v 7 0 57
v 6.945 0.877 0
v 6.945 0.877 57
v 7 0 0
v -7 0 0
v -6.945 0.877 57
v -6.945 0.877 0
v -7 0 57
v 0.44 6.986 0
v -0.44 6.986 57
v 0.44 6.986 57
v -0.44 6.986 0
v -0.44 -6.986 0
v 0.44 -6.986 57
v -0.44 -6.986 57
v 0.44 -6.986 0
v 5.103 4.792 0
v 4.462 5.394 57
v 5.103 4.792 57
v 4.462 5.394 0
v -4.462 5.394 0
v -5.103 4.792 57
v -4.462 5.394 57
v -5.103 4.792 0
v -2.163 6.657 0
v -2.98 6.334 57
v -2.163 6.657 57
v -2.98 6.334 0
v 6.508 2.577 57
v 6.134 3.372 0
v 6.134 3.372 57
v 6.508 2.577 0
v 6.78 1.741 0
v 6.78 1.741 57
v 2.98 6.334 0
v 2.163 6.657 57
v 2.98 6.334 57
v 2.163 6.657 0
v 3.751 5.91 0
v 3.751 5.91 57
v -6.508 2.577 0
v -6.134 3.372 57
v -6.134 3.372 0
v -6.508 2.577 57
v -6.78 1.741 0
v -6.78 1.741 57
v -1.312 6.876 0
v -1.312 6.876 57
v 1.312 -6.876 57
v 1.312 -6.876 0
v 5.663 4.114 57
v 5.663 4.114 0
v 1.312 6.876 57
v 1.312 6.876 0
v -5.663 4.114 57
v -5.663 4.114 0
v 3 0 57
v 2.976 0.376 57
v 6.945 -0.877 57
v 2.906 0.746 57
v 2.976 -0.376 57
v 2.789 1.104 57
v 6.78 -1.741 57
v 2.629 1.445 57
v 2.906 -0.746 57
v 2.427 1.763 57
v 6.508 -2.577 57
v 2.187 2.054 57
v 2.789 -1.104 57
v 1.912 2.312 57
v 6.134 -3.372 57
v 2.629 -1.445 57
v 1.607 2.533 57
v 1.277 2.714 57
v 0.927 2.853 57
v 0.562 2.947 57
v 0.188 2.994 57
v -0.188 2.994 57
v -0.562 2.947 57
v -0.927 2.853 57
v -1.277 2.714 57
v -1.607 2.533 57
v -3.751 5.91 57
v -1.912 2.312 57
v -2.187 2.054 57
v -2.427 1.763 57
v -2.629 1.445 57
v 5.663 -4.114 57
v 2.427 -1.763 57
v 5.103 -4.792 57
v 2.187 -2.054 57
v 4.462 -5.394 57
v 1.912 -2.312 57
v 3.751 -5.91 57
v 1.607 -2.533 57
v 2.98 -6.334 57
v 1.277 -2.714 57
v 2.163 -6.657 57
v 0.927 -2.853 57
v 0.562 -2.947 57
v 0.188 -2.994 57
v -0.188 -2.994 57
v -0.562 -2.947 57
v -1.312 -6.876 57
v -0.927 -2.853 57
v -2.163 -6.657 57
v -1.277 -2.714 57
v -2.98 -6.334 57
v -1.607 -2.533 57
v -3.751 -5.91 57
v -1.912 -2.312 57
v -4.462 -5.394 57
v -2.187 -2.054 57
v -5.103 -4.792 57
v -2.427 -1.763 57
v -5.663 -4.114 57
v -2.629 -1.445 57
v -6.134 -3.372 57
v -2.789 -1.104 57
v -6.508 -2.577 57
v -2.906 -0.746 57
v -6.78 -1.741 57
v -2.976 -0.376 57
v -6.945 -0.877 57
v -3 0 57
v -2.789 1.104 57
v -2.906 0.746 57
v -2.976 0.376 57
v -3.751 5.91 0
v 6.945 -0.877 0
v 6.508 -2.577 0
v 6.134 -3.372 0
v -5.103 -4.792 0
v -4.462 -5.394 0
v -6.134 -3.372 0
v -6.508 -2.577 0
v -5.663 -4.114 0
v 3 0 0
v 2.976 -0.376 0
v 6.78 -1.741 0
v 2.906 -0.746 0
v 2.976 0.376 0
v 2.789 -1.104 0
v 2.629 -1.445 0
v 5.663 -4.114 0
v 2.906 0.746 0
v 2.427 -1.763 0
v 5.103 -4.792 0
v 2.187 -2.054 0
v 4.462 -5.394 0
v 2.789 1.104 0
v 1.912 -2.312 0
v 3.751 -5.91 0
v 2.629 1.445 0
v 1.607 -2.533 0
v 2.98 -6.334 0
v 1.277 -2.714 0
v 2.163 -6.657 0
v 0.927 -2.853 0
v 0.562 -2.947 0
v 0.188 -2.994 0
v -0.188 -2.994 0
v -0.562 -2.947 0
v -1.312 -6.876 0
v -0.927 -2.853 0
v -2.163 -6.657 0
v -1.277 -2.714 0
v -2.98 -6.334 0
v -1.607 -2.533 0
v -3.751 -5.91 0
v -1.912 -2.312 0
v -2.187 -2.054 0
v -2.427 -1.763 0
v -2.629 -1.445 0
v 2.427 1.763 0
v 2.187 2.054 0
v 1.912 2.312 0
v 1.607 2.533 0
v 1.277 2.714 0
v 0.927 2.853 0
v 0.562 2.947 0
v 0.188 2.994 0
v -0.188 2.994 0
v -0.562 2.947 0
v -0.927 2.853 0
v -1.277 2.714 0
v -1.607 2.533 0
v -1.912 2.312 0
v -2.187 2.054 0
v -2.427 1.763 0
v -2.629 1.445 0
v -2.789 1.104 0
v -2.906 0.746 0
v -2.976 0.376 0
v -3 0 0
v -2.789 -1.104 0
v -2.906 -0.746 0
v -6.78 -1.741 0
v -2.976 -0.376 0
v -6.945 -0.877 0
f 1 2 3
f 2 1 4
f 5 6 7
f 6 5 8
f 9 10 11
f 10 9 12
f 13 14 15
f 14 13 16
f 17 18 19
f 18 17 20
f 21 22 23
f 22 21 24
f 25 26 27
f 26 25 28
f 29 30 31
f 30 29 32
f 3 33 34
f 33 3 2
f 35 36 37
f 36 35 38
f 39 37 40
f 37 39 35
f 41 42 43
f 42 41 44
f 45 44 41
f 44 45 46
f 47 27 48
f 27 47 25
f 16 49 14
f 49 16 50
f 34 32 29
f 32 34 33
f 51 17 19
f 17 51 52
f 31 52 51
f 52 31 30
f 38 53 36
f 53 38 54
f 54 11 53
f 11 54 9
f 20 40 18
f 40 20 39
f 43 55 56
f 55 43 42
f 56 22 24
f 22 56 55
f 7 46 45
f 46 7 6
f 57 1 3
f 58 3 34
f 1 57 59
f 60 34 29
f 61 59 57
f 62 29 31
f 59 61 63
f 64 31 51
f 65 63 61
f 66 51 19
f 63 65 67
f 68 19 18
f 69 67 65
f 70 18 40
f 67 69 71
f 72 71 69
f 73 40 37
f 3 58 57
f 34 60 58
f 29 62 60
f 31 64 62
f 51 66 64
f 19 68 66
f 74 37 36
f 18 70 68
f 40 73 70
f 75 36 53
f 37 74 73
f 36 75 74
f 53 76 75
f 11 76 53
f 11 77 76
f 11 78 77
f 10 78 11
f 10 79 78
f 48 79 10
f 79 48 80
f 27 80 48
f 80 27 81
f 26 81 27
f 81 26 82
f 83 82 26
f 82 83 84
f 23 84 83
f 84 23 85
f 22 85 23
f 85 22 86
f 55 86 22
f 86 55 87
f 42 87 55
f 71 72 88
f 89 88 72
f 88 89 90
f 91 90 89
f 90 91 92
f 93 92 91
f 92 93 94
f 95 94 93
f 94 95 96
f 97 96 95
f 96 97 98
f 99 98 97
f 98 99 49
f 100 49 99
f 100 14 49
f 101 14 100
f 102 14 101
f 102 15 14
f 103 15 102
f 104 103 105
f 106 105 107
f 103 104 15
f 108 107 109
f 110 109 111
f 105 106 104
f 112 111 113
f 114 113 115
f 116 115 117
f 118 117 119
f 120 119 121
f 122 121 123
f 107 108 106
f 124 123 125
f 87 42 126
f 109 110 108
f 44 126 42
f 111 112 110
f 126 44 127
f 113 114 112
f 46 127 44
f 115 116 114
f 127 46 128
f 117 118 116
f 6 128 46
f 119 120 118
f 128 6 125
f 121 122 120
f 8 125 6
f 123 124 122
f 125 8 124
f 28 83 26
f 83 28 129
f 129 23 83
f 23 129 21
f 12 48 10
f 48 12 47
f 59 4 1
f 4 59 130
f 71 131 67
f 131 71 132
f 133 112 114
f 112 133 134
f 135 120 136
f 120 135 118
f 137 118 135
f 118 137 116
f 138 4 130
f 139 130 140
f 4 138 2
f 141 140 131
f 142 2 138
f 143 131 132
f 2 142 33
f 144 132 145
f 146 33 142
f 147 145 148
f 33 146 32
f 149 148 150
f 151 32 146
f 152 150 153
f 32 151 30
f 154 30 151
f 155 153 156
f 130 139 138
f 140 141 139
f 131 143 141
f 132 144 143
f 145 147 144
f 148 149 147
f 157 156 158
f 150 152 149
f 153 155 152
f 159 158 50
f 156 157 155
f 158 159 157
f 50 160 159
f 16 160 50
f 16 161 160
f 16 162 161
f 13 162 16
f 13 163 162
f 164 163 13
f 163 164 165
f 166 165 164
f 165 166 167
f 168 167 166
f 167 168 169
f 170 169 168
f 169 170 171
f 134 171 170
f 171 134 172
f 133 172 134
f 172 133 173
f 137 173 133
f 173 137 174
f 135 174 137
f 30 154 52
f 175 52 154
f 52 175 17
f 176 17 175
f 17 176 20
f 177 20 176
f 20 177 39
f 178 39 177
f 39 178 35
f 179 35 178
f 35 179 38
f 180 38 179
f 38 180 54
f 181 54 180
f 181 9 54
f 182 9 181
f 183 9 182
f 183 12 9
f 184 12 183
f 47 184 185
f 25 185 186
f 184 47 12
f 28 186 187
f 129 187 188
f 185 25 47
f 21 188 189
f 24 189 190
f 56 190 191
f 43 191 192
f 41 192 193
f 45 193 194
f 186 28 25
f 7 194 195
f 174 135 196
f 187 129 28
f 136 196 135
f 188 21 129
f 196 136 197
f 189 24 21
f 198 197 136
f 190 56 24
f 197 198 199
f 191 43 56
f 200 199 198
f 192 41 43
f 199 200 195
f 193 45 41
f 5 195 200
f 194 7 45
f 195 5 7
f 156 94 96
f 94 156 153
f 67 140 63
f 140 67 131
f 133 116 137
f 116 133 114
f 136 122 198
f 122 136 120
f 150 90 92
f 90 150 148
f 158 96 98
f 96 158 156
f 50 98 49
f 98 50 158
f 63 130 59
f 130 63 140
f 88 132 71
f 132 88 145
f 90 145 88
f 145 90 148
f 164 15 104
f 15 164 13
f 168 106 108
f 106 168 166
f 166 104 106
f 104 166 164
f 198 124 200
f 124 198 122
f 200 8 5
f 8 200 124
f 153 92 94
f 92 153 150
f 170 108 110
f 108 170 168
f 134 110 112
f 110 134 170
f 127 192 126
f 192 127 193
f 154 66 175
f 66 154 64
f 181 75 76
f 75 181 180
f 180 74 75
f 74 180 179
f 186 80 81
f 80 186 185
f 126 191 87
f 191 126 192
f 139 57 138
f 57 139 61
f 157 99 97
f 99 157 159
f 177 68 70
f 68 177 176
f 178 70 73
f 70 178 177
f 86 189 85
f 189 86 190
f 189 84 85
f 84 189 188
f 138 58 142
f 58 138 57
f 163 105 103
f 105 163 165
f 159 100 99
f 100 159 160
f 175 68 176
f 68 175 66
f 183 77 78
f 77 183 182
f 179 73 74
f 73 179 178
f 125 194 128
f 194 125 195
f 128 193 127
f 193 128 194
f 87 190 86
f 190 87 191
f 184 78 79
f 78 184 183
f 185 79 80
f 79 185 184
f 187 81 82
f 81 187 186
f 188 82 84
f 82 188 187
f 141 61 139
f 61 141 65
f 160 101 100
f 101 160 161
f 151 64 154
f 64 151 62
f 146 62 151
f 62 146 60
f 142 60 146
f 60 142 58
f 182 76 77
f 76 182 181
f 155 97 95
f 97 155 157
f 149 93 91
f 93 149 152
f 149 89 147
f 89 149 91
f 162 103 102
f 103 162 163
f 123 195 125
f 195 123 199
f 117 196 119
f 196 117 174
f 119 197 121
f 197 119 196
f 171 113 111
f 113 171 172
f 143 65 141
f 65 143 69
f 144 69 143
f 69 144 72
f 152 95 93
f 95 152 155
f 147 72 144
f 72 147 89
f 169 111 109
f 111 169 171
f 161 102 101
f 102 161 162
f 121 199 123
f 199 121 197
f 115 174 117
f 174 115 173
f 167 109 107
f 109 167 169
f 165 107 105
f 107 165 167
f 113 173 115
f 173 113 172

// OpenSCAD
$fn = 50;


difference() {
	union() {
		cylinder(h = 57, r = 7.0000000000);
	}
	union() {
		translate(v = [0, 0, -100]) {
			cylinder(h = 200, r = 3.0000000000);
		}
	}
}
